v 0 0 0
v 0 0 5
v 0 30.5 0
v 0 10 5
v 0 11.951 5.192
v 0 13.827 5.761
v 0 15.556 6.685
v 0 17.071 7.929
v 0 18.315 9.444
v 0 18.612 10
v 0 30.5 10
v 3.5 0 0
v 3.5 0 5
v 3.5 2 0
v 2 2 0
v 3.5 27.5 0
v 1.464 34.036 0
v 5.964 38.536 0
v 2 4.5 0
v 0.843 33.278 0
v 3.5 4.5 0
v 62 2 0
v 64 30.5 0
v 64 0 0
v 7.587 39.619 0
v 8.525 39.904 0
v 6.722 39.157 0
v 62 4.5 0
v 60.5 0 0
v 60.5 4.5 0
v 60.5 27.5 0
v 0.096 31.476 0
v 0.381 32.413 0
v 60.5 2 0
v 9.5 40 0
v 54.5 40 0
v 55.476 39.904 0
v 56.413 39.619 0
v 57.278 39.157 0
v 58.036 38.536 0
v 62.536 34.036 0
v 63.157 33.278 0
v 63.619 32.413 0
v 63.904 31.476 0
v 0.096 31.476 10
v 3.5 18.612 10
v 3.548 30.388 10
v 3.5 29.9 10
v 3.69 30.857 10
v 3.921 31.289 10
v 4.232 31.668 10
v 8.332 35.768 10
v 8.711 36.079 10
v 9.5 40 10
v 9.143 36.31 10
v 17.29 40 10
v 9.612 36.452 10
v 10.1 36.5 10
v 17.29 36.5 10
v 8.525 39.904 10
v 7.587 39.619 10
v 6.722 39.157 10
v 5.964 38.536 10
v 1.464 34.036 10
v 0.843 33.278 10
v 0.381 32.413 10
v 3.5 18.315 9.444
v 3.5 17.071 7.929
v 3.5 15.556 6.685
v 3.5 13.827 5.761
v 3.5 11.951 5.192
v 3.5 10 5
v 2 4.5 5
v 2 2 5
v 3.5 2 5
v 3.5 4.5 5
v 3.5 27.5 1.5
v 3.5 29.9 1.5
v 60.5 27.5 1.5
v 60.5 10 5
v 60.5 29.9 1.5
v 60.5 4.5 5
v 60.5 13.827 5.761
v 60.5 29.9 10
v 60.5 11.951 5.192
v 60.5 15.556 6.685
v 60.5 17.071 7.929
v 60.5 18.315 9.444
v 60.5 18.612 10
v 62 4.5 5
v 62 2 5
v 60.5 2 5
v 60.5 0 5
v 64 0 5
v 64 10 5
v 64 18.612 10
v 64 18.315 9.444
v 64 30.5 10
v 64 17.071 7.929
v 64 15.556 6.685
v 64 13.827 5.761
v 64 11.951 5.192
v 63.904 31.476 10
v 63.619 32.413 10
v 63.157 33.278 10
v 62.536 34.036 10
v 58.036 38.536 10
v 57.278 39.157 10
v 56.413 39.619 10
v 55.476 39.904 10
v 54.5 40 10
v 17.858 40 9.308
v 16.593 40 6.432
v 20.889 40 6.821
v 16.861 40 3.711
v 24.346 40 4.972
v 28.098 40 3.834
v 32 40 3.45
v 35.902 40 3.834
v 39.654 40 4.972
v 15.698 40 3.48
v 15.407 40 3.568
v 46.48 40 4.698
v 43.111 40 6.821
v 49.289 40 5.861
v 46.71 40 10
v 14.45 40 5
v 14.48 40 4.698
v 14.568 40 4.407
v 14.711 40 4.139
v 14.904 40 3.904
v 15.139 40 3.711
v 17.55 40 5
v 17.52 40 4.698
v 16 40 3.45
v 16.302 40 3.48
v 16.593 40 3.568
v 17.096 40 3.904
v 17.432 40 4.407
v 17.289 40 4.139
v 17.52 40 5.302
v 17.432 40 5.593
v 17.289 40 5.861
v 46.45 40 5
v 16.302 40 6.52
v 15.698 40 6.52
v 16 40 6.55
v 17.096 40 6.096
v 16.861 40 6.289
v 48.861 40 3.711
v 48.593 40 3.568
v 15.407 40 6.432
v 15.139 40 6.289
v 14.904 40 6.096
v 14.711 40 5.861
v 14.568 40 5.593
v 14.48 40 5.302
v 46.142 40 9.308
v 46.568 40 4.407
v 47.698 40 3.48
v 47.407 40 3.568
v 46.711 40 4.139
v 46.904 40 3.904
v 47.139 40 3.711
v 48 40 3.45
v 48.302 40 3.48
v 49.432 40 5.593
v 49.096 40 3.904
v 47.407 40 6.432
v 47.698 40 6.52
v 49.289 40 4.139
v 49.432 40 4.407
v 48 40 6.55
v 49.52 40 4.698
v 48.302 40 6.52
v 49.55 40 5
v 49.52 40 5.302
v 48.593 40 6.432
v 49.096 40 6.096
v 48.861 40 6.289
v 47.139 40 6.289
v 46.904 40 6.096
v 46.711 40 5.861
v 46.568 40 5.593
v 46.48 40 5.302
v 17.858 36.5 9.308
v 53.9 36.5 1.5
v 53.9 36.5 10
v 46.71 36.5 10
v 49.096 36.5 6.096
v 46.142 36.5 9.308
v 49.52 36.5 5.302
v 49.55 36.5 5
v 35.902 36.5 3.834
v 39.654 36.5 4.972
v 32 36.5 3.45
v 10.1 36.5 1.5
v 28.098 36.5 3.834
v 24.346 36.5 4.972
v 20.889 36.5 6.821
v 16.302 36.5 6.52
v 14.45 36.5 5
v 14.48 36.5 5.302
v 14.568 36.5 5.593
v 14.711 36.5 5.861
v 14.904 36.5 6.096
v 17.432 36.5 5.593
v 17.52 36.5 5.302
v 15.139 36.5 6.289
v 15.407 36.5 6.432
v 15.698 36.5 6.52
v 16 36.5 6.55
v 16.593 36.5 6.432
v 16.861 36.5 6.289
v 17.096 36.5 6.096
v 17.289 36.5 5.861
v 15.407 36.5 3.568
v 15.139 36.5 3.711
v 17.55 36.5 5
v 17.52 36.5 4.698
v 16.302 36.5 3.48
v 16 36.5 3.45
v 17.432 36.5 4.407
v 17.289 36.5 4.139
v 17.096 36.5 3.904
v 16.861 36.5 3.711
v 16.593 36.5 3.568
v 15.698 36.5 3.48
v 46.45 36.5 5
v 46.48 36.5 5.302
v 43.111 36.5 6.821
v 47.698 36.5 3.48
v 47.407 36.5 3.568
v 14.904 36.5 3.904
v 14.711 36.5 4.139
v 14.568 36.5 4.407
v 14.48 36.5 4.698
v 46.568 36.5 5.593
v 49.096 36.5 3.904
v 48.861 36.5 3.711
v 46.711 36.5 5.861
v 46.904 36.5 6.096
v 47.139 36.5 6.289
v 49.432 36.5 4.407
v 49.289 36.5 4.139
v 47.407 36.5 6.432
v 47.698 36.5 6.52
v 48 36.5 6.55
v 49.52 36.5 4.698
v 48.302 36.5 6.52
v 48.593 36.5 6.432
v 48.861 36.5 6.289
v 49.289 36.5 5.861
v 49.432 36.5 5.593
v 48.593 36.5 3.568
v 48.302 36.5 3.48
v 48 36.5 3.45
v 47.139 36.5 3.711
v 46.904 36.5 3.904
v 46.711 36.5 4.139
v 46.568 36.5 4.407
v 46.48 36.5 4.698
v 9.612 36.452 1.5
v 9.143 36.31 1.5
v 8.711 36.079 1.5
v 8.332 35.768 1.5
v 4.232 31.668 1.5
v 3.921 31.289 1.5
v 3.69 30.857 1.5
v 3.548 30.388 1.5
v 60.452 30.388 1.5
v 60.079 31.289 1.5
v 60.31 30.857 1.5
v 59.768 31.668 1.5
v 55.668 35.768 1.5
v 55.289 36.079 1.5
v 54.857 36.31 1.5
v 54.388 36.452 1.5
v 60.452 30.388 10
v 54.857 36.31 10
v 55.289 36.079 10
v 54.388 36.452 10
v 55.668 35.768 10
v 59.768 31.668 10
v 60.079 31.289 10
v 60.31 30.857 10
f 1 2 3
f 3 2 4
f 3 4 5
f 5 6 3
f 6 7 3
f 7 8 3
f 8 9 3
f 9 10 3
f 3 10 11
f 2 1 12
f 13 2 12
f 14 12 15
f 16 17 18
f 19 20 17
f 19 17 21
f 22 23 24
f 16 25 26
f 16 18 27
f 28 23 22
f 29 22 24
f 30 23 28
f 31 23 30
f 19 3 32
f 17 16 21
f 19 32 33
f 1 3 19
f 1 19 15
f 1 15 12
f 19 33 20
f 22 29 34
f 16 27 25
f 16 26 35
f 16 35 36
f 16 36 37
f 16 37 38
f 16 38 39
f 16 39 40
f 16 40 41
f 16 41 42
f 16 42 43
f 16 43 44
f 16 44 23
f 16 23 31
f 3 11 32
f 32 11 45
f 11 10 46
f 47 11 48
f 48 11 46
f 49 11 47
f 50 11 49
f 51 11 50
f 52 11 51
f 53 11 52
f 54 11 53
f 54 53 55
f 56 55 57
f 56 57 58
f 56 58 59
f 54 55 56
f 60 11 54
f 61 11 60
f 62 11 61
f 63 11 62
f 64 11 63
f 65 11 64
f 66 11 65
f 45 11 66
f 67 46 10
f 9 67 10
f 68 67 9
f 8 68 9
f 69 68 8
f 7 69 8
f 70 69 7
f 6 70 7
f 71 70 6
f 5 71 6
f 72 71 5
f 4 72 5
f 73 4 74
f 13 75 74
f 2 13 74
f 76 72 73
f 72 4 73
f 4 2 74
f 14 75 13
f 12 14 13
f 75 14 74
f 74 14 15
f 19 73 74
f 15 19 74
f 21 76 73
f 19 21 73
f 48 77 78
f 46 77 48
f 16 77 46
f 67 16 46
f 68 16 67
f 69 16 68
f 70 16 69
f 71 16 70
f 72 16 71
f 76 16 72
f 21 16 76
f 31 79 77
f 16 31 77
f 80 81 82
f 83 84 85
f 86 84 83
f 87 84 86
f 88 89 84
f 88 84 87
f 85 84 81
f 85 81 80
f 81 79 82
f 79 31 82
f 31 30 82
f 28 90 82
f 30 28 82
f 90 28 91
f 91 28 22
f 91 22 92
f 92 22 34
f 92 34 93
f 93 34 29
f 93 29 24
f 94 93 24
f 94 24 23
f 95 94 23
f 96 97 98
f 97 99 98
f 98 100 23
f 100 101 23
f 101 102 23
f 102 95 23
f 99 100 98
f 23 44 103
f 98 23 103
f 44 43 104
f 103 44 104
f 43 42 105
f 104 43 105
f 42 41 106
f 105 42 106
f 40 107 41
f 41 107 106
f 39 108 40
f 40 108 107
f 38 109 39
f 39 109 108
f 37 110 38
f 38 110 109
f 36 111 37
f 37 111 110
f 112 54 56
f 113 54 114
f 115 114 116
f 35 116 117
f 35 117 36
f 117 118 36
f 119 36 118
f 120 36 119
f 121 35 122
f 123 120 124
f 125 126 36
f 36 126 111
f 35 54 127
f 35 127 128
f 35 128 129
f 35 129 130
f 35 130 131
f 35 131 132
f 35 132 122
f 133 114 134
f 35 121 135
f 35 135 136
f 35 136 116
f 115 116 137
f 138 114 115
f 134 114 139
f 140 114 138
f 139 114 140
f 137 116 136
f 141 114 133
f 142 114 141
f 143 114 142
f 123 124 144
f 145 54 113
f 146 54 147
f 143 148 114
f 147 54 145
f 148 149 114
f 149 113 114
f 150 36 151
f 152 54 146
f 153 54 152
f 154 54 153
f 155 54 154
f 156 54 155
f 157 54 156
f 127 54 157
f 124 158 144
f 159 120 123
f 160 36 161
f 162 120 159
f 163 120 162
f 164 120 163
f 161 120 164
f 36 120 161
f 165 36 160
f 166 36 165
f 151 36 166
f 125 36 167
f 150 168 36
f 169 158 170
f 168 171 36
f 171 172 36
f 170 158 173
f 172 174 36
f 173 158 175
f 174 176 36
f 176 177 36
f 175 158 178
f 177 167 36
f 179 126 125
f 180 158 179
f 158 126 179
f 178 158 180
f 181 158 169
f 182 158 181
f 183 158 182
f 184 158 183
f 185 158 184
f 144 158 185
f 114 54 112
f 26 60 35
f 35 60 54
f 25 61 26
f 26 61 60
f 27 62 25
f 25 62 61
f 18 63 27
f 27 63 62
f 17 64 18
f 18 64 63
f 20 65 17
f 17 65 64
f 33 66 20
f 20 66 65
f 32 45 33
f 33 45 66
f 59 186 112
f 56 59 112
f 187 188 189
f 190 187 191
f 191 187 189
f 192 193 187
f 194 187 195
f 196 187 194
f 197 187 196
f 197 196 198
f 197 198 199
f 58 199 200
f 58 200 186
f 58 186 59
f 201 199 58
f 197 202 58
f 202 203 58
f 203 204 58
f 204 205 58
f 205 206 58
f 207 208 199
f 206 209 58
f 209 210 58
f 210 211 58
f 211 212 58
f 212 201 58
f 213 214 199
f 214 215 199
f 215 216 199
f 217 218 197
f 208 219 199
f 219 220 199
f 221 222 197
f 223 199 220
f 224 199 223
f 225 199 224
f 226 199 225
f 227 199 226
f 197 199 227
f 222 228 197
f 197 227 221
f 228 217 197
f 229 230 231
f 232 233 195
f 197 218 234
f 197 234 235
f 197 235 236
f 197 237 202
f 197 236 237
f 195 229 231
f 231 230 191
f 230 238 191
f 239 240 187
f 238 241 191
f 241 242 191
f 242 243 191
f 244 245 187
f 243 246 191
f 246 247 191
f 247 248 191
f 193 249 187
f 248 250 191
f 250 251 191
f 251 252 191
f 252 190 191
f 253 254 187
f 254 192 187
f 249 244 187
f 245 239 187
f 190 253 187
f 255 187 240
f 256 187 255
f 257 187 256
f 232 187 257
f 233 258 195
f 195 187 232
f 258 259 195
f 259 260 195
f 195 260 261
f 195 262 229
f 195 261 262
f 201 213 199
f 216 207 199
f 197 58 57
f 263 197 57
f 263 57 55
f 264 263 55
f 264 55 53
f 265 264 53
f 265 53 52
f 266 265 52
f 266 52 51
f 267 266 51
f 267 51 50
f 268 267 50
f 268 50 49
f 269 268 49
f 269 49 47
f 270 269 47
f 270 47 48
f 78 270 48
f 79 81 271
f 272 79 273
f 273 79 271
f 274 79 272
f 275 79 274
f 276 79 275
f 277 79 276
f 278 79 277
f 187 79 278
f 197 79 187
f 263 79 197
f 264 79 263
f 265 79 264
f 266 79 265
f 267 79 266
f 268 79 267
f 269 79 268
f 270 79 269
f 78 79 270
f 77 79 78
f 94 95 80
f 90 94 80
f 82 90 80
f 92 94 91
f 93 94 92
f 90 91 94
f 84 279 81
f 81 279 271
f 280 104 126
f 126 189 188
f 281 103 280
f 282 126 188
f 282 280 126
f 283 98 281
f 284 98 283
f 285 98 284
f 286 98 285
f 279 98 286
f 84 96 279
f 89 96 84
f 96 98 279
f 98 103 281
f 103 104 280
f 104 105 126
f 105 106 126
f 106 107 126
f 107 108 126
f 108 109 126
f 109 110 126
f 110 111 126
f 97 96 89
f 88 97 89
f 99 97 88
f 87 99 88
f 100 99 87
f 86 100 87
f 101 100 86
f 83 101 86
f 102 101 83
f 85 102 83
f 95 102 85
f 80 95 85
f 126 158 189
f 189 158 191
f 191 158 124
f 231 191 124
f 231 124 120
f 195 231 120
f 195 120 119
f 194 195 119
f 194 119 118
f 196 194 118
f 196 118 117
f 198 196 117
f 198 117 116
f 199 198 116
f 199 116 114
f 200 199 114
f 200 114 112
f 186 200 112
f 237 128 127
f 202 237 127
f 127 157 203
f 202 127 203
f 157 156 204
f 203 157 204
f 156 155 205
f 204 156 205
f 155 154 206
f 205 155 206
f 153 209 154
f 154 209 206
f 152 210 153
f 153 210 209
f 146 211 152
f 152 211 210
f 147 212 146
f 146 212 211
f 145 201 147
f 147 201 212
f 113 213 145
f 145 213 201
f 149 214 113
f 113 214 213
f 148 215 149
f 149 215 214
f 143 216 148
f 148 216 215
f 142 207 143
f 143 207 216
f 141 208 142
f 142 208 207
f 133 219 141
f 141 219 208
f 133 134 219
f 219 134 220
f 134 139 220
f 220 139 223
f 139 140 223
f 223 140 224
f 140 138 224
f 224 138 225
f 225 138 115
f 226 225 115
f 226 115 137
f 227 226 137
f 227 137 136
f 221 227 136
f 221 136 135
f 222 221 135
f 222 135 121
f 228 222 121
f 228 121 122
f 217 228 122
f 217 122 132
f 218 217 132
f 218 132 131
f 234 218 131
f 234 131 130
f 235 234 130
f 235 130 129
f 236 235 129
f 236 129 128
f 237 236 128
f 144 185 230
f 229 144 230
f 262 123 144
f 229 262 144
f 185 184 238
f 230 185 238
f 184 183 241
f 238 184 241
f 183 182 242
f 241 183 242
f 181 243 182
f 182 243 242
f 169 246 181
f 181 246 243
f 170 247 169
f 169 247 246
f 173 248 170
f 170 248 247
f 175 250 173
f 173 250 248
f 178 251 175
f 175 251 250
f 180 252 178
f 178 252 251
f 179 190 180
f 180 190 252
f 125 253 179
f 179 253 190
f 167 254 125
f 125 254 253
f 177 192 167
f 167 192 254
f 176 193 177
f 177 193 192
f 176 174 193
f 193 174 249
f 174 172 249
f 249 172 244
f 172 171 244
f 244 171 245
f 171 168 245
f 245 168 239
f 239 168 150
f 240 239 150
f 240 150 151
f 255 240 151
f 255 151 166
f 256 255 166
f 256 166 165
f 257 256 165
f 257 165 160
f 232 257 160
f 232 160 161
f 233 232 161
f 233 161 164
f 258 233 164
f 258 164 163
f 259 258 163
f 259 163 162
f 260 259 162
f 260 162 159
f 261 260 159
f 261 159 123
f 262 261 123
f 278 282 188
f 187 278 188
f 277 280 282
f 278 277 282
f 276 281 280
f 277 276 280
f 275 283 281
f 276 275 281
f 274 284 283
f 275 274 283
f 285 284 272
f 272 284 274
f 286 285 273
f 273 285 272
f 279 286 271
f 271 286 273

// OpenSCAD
// RAMPS Fan Mount
// Licence: CC BY-SA 3.0, http://creativecommons.org/licenses/by-sa/3.0/
// Author: Dominik Scholz <schlotzz@schlotzz.com> and contributors
// visit: http://www.schlotzz.com


module ramps_fan_mount_cutoff_cube(width, height, depth, cutoff = 5, radius = 5)
{
	union()
	{
		cube([width, height - cutoff - radius, depth]);

		hull()
		{
			for (x = [radius, width - radius])
				translate([x, height - cutoff - radius, 0])
					cylinder(r = radius, h = depth);
	
			for (x = [radius + cutoff, width - radius - cutoff])
				translate([x, height - radius, 0])
					cylinder(r = radius, h = depth);
		}
	}
}


module ramps_fan_mount(width = 64, height = 40, depth = 10, fanDia = 40, fanHoleDia = 3.1, fanHoleDist = 32, grooveDepth = 1.5, grooveHeight = 2.5, thickness = 3.5, $fn = 16)
{

	difference()
	{
		// base corpus
		ramps_fan_mount_cutoff_cube(width, height, depth, cutoff = 4.5, radius = 5);

		// hollow, leave side air guide
		translate([thickness, -thickness, 1.5])
			ramps_fan_mount_cutoff_cube(width - 2 * thickness, height, depth + 2, cutoff = 4.1, radius = 2.5);

		// remove unneeded air guide
		translate([thickness, -1, -1])
			cube([width - 2 * thickness, height - thickness - 8, depth + 2]);

		// add grooves
		translate([thickness - grooveDepth, 2, -1])
			cube([width - 2 * thickness + grooveDepth * 2, grooveHeight, depth + 2]);
		
		// fan mounting holes
		for (x = [(width - fanHoleDist) / 2, (width + fanHoleDist) / 2])
			translate([x, height + 1, depth / 2])
				rotate([90, 0, 0])
					cylinder(r = fanHoleDia / 2, h = thickness + 2);

		// fan hole
		translate([width / 2, height + 1, depth / 2 + fanDia / 2 - fanHoleDia / 2])
			rotate([90, 0, 0])
				cylinder(r = fanDia / 2, h = thickness + 2);

		// smaller legs
		translate([-1, height / 2 - depth, depth * 1.5])
			rotate([0, 90, 0])
				cylinder(r = depth, h = width + 2);
		translate([-1, -1, depth / 2])
			cube([width + 2, height / 2 - depth + 1, depth / 2 + 1]);

	}

}


ramps_fan_mount($fn = 32);
